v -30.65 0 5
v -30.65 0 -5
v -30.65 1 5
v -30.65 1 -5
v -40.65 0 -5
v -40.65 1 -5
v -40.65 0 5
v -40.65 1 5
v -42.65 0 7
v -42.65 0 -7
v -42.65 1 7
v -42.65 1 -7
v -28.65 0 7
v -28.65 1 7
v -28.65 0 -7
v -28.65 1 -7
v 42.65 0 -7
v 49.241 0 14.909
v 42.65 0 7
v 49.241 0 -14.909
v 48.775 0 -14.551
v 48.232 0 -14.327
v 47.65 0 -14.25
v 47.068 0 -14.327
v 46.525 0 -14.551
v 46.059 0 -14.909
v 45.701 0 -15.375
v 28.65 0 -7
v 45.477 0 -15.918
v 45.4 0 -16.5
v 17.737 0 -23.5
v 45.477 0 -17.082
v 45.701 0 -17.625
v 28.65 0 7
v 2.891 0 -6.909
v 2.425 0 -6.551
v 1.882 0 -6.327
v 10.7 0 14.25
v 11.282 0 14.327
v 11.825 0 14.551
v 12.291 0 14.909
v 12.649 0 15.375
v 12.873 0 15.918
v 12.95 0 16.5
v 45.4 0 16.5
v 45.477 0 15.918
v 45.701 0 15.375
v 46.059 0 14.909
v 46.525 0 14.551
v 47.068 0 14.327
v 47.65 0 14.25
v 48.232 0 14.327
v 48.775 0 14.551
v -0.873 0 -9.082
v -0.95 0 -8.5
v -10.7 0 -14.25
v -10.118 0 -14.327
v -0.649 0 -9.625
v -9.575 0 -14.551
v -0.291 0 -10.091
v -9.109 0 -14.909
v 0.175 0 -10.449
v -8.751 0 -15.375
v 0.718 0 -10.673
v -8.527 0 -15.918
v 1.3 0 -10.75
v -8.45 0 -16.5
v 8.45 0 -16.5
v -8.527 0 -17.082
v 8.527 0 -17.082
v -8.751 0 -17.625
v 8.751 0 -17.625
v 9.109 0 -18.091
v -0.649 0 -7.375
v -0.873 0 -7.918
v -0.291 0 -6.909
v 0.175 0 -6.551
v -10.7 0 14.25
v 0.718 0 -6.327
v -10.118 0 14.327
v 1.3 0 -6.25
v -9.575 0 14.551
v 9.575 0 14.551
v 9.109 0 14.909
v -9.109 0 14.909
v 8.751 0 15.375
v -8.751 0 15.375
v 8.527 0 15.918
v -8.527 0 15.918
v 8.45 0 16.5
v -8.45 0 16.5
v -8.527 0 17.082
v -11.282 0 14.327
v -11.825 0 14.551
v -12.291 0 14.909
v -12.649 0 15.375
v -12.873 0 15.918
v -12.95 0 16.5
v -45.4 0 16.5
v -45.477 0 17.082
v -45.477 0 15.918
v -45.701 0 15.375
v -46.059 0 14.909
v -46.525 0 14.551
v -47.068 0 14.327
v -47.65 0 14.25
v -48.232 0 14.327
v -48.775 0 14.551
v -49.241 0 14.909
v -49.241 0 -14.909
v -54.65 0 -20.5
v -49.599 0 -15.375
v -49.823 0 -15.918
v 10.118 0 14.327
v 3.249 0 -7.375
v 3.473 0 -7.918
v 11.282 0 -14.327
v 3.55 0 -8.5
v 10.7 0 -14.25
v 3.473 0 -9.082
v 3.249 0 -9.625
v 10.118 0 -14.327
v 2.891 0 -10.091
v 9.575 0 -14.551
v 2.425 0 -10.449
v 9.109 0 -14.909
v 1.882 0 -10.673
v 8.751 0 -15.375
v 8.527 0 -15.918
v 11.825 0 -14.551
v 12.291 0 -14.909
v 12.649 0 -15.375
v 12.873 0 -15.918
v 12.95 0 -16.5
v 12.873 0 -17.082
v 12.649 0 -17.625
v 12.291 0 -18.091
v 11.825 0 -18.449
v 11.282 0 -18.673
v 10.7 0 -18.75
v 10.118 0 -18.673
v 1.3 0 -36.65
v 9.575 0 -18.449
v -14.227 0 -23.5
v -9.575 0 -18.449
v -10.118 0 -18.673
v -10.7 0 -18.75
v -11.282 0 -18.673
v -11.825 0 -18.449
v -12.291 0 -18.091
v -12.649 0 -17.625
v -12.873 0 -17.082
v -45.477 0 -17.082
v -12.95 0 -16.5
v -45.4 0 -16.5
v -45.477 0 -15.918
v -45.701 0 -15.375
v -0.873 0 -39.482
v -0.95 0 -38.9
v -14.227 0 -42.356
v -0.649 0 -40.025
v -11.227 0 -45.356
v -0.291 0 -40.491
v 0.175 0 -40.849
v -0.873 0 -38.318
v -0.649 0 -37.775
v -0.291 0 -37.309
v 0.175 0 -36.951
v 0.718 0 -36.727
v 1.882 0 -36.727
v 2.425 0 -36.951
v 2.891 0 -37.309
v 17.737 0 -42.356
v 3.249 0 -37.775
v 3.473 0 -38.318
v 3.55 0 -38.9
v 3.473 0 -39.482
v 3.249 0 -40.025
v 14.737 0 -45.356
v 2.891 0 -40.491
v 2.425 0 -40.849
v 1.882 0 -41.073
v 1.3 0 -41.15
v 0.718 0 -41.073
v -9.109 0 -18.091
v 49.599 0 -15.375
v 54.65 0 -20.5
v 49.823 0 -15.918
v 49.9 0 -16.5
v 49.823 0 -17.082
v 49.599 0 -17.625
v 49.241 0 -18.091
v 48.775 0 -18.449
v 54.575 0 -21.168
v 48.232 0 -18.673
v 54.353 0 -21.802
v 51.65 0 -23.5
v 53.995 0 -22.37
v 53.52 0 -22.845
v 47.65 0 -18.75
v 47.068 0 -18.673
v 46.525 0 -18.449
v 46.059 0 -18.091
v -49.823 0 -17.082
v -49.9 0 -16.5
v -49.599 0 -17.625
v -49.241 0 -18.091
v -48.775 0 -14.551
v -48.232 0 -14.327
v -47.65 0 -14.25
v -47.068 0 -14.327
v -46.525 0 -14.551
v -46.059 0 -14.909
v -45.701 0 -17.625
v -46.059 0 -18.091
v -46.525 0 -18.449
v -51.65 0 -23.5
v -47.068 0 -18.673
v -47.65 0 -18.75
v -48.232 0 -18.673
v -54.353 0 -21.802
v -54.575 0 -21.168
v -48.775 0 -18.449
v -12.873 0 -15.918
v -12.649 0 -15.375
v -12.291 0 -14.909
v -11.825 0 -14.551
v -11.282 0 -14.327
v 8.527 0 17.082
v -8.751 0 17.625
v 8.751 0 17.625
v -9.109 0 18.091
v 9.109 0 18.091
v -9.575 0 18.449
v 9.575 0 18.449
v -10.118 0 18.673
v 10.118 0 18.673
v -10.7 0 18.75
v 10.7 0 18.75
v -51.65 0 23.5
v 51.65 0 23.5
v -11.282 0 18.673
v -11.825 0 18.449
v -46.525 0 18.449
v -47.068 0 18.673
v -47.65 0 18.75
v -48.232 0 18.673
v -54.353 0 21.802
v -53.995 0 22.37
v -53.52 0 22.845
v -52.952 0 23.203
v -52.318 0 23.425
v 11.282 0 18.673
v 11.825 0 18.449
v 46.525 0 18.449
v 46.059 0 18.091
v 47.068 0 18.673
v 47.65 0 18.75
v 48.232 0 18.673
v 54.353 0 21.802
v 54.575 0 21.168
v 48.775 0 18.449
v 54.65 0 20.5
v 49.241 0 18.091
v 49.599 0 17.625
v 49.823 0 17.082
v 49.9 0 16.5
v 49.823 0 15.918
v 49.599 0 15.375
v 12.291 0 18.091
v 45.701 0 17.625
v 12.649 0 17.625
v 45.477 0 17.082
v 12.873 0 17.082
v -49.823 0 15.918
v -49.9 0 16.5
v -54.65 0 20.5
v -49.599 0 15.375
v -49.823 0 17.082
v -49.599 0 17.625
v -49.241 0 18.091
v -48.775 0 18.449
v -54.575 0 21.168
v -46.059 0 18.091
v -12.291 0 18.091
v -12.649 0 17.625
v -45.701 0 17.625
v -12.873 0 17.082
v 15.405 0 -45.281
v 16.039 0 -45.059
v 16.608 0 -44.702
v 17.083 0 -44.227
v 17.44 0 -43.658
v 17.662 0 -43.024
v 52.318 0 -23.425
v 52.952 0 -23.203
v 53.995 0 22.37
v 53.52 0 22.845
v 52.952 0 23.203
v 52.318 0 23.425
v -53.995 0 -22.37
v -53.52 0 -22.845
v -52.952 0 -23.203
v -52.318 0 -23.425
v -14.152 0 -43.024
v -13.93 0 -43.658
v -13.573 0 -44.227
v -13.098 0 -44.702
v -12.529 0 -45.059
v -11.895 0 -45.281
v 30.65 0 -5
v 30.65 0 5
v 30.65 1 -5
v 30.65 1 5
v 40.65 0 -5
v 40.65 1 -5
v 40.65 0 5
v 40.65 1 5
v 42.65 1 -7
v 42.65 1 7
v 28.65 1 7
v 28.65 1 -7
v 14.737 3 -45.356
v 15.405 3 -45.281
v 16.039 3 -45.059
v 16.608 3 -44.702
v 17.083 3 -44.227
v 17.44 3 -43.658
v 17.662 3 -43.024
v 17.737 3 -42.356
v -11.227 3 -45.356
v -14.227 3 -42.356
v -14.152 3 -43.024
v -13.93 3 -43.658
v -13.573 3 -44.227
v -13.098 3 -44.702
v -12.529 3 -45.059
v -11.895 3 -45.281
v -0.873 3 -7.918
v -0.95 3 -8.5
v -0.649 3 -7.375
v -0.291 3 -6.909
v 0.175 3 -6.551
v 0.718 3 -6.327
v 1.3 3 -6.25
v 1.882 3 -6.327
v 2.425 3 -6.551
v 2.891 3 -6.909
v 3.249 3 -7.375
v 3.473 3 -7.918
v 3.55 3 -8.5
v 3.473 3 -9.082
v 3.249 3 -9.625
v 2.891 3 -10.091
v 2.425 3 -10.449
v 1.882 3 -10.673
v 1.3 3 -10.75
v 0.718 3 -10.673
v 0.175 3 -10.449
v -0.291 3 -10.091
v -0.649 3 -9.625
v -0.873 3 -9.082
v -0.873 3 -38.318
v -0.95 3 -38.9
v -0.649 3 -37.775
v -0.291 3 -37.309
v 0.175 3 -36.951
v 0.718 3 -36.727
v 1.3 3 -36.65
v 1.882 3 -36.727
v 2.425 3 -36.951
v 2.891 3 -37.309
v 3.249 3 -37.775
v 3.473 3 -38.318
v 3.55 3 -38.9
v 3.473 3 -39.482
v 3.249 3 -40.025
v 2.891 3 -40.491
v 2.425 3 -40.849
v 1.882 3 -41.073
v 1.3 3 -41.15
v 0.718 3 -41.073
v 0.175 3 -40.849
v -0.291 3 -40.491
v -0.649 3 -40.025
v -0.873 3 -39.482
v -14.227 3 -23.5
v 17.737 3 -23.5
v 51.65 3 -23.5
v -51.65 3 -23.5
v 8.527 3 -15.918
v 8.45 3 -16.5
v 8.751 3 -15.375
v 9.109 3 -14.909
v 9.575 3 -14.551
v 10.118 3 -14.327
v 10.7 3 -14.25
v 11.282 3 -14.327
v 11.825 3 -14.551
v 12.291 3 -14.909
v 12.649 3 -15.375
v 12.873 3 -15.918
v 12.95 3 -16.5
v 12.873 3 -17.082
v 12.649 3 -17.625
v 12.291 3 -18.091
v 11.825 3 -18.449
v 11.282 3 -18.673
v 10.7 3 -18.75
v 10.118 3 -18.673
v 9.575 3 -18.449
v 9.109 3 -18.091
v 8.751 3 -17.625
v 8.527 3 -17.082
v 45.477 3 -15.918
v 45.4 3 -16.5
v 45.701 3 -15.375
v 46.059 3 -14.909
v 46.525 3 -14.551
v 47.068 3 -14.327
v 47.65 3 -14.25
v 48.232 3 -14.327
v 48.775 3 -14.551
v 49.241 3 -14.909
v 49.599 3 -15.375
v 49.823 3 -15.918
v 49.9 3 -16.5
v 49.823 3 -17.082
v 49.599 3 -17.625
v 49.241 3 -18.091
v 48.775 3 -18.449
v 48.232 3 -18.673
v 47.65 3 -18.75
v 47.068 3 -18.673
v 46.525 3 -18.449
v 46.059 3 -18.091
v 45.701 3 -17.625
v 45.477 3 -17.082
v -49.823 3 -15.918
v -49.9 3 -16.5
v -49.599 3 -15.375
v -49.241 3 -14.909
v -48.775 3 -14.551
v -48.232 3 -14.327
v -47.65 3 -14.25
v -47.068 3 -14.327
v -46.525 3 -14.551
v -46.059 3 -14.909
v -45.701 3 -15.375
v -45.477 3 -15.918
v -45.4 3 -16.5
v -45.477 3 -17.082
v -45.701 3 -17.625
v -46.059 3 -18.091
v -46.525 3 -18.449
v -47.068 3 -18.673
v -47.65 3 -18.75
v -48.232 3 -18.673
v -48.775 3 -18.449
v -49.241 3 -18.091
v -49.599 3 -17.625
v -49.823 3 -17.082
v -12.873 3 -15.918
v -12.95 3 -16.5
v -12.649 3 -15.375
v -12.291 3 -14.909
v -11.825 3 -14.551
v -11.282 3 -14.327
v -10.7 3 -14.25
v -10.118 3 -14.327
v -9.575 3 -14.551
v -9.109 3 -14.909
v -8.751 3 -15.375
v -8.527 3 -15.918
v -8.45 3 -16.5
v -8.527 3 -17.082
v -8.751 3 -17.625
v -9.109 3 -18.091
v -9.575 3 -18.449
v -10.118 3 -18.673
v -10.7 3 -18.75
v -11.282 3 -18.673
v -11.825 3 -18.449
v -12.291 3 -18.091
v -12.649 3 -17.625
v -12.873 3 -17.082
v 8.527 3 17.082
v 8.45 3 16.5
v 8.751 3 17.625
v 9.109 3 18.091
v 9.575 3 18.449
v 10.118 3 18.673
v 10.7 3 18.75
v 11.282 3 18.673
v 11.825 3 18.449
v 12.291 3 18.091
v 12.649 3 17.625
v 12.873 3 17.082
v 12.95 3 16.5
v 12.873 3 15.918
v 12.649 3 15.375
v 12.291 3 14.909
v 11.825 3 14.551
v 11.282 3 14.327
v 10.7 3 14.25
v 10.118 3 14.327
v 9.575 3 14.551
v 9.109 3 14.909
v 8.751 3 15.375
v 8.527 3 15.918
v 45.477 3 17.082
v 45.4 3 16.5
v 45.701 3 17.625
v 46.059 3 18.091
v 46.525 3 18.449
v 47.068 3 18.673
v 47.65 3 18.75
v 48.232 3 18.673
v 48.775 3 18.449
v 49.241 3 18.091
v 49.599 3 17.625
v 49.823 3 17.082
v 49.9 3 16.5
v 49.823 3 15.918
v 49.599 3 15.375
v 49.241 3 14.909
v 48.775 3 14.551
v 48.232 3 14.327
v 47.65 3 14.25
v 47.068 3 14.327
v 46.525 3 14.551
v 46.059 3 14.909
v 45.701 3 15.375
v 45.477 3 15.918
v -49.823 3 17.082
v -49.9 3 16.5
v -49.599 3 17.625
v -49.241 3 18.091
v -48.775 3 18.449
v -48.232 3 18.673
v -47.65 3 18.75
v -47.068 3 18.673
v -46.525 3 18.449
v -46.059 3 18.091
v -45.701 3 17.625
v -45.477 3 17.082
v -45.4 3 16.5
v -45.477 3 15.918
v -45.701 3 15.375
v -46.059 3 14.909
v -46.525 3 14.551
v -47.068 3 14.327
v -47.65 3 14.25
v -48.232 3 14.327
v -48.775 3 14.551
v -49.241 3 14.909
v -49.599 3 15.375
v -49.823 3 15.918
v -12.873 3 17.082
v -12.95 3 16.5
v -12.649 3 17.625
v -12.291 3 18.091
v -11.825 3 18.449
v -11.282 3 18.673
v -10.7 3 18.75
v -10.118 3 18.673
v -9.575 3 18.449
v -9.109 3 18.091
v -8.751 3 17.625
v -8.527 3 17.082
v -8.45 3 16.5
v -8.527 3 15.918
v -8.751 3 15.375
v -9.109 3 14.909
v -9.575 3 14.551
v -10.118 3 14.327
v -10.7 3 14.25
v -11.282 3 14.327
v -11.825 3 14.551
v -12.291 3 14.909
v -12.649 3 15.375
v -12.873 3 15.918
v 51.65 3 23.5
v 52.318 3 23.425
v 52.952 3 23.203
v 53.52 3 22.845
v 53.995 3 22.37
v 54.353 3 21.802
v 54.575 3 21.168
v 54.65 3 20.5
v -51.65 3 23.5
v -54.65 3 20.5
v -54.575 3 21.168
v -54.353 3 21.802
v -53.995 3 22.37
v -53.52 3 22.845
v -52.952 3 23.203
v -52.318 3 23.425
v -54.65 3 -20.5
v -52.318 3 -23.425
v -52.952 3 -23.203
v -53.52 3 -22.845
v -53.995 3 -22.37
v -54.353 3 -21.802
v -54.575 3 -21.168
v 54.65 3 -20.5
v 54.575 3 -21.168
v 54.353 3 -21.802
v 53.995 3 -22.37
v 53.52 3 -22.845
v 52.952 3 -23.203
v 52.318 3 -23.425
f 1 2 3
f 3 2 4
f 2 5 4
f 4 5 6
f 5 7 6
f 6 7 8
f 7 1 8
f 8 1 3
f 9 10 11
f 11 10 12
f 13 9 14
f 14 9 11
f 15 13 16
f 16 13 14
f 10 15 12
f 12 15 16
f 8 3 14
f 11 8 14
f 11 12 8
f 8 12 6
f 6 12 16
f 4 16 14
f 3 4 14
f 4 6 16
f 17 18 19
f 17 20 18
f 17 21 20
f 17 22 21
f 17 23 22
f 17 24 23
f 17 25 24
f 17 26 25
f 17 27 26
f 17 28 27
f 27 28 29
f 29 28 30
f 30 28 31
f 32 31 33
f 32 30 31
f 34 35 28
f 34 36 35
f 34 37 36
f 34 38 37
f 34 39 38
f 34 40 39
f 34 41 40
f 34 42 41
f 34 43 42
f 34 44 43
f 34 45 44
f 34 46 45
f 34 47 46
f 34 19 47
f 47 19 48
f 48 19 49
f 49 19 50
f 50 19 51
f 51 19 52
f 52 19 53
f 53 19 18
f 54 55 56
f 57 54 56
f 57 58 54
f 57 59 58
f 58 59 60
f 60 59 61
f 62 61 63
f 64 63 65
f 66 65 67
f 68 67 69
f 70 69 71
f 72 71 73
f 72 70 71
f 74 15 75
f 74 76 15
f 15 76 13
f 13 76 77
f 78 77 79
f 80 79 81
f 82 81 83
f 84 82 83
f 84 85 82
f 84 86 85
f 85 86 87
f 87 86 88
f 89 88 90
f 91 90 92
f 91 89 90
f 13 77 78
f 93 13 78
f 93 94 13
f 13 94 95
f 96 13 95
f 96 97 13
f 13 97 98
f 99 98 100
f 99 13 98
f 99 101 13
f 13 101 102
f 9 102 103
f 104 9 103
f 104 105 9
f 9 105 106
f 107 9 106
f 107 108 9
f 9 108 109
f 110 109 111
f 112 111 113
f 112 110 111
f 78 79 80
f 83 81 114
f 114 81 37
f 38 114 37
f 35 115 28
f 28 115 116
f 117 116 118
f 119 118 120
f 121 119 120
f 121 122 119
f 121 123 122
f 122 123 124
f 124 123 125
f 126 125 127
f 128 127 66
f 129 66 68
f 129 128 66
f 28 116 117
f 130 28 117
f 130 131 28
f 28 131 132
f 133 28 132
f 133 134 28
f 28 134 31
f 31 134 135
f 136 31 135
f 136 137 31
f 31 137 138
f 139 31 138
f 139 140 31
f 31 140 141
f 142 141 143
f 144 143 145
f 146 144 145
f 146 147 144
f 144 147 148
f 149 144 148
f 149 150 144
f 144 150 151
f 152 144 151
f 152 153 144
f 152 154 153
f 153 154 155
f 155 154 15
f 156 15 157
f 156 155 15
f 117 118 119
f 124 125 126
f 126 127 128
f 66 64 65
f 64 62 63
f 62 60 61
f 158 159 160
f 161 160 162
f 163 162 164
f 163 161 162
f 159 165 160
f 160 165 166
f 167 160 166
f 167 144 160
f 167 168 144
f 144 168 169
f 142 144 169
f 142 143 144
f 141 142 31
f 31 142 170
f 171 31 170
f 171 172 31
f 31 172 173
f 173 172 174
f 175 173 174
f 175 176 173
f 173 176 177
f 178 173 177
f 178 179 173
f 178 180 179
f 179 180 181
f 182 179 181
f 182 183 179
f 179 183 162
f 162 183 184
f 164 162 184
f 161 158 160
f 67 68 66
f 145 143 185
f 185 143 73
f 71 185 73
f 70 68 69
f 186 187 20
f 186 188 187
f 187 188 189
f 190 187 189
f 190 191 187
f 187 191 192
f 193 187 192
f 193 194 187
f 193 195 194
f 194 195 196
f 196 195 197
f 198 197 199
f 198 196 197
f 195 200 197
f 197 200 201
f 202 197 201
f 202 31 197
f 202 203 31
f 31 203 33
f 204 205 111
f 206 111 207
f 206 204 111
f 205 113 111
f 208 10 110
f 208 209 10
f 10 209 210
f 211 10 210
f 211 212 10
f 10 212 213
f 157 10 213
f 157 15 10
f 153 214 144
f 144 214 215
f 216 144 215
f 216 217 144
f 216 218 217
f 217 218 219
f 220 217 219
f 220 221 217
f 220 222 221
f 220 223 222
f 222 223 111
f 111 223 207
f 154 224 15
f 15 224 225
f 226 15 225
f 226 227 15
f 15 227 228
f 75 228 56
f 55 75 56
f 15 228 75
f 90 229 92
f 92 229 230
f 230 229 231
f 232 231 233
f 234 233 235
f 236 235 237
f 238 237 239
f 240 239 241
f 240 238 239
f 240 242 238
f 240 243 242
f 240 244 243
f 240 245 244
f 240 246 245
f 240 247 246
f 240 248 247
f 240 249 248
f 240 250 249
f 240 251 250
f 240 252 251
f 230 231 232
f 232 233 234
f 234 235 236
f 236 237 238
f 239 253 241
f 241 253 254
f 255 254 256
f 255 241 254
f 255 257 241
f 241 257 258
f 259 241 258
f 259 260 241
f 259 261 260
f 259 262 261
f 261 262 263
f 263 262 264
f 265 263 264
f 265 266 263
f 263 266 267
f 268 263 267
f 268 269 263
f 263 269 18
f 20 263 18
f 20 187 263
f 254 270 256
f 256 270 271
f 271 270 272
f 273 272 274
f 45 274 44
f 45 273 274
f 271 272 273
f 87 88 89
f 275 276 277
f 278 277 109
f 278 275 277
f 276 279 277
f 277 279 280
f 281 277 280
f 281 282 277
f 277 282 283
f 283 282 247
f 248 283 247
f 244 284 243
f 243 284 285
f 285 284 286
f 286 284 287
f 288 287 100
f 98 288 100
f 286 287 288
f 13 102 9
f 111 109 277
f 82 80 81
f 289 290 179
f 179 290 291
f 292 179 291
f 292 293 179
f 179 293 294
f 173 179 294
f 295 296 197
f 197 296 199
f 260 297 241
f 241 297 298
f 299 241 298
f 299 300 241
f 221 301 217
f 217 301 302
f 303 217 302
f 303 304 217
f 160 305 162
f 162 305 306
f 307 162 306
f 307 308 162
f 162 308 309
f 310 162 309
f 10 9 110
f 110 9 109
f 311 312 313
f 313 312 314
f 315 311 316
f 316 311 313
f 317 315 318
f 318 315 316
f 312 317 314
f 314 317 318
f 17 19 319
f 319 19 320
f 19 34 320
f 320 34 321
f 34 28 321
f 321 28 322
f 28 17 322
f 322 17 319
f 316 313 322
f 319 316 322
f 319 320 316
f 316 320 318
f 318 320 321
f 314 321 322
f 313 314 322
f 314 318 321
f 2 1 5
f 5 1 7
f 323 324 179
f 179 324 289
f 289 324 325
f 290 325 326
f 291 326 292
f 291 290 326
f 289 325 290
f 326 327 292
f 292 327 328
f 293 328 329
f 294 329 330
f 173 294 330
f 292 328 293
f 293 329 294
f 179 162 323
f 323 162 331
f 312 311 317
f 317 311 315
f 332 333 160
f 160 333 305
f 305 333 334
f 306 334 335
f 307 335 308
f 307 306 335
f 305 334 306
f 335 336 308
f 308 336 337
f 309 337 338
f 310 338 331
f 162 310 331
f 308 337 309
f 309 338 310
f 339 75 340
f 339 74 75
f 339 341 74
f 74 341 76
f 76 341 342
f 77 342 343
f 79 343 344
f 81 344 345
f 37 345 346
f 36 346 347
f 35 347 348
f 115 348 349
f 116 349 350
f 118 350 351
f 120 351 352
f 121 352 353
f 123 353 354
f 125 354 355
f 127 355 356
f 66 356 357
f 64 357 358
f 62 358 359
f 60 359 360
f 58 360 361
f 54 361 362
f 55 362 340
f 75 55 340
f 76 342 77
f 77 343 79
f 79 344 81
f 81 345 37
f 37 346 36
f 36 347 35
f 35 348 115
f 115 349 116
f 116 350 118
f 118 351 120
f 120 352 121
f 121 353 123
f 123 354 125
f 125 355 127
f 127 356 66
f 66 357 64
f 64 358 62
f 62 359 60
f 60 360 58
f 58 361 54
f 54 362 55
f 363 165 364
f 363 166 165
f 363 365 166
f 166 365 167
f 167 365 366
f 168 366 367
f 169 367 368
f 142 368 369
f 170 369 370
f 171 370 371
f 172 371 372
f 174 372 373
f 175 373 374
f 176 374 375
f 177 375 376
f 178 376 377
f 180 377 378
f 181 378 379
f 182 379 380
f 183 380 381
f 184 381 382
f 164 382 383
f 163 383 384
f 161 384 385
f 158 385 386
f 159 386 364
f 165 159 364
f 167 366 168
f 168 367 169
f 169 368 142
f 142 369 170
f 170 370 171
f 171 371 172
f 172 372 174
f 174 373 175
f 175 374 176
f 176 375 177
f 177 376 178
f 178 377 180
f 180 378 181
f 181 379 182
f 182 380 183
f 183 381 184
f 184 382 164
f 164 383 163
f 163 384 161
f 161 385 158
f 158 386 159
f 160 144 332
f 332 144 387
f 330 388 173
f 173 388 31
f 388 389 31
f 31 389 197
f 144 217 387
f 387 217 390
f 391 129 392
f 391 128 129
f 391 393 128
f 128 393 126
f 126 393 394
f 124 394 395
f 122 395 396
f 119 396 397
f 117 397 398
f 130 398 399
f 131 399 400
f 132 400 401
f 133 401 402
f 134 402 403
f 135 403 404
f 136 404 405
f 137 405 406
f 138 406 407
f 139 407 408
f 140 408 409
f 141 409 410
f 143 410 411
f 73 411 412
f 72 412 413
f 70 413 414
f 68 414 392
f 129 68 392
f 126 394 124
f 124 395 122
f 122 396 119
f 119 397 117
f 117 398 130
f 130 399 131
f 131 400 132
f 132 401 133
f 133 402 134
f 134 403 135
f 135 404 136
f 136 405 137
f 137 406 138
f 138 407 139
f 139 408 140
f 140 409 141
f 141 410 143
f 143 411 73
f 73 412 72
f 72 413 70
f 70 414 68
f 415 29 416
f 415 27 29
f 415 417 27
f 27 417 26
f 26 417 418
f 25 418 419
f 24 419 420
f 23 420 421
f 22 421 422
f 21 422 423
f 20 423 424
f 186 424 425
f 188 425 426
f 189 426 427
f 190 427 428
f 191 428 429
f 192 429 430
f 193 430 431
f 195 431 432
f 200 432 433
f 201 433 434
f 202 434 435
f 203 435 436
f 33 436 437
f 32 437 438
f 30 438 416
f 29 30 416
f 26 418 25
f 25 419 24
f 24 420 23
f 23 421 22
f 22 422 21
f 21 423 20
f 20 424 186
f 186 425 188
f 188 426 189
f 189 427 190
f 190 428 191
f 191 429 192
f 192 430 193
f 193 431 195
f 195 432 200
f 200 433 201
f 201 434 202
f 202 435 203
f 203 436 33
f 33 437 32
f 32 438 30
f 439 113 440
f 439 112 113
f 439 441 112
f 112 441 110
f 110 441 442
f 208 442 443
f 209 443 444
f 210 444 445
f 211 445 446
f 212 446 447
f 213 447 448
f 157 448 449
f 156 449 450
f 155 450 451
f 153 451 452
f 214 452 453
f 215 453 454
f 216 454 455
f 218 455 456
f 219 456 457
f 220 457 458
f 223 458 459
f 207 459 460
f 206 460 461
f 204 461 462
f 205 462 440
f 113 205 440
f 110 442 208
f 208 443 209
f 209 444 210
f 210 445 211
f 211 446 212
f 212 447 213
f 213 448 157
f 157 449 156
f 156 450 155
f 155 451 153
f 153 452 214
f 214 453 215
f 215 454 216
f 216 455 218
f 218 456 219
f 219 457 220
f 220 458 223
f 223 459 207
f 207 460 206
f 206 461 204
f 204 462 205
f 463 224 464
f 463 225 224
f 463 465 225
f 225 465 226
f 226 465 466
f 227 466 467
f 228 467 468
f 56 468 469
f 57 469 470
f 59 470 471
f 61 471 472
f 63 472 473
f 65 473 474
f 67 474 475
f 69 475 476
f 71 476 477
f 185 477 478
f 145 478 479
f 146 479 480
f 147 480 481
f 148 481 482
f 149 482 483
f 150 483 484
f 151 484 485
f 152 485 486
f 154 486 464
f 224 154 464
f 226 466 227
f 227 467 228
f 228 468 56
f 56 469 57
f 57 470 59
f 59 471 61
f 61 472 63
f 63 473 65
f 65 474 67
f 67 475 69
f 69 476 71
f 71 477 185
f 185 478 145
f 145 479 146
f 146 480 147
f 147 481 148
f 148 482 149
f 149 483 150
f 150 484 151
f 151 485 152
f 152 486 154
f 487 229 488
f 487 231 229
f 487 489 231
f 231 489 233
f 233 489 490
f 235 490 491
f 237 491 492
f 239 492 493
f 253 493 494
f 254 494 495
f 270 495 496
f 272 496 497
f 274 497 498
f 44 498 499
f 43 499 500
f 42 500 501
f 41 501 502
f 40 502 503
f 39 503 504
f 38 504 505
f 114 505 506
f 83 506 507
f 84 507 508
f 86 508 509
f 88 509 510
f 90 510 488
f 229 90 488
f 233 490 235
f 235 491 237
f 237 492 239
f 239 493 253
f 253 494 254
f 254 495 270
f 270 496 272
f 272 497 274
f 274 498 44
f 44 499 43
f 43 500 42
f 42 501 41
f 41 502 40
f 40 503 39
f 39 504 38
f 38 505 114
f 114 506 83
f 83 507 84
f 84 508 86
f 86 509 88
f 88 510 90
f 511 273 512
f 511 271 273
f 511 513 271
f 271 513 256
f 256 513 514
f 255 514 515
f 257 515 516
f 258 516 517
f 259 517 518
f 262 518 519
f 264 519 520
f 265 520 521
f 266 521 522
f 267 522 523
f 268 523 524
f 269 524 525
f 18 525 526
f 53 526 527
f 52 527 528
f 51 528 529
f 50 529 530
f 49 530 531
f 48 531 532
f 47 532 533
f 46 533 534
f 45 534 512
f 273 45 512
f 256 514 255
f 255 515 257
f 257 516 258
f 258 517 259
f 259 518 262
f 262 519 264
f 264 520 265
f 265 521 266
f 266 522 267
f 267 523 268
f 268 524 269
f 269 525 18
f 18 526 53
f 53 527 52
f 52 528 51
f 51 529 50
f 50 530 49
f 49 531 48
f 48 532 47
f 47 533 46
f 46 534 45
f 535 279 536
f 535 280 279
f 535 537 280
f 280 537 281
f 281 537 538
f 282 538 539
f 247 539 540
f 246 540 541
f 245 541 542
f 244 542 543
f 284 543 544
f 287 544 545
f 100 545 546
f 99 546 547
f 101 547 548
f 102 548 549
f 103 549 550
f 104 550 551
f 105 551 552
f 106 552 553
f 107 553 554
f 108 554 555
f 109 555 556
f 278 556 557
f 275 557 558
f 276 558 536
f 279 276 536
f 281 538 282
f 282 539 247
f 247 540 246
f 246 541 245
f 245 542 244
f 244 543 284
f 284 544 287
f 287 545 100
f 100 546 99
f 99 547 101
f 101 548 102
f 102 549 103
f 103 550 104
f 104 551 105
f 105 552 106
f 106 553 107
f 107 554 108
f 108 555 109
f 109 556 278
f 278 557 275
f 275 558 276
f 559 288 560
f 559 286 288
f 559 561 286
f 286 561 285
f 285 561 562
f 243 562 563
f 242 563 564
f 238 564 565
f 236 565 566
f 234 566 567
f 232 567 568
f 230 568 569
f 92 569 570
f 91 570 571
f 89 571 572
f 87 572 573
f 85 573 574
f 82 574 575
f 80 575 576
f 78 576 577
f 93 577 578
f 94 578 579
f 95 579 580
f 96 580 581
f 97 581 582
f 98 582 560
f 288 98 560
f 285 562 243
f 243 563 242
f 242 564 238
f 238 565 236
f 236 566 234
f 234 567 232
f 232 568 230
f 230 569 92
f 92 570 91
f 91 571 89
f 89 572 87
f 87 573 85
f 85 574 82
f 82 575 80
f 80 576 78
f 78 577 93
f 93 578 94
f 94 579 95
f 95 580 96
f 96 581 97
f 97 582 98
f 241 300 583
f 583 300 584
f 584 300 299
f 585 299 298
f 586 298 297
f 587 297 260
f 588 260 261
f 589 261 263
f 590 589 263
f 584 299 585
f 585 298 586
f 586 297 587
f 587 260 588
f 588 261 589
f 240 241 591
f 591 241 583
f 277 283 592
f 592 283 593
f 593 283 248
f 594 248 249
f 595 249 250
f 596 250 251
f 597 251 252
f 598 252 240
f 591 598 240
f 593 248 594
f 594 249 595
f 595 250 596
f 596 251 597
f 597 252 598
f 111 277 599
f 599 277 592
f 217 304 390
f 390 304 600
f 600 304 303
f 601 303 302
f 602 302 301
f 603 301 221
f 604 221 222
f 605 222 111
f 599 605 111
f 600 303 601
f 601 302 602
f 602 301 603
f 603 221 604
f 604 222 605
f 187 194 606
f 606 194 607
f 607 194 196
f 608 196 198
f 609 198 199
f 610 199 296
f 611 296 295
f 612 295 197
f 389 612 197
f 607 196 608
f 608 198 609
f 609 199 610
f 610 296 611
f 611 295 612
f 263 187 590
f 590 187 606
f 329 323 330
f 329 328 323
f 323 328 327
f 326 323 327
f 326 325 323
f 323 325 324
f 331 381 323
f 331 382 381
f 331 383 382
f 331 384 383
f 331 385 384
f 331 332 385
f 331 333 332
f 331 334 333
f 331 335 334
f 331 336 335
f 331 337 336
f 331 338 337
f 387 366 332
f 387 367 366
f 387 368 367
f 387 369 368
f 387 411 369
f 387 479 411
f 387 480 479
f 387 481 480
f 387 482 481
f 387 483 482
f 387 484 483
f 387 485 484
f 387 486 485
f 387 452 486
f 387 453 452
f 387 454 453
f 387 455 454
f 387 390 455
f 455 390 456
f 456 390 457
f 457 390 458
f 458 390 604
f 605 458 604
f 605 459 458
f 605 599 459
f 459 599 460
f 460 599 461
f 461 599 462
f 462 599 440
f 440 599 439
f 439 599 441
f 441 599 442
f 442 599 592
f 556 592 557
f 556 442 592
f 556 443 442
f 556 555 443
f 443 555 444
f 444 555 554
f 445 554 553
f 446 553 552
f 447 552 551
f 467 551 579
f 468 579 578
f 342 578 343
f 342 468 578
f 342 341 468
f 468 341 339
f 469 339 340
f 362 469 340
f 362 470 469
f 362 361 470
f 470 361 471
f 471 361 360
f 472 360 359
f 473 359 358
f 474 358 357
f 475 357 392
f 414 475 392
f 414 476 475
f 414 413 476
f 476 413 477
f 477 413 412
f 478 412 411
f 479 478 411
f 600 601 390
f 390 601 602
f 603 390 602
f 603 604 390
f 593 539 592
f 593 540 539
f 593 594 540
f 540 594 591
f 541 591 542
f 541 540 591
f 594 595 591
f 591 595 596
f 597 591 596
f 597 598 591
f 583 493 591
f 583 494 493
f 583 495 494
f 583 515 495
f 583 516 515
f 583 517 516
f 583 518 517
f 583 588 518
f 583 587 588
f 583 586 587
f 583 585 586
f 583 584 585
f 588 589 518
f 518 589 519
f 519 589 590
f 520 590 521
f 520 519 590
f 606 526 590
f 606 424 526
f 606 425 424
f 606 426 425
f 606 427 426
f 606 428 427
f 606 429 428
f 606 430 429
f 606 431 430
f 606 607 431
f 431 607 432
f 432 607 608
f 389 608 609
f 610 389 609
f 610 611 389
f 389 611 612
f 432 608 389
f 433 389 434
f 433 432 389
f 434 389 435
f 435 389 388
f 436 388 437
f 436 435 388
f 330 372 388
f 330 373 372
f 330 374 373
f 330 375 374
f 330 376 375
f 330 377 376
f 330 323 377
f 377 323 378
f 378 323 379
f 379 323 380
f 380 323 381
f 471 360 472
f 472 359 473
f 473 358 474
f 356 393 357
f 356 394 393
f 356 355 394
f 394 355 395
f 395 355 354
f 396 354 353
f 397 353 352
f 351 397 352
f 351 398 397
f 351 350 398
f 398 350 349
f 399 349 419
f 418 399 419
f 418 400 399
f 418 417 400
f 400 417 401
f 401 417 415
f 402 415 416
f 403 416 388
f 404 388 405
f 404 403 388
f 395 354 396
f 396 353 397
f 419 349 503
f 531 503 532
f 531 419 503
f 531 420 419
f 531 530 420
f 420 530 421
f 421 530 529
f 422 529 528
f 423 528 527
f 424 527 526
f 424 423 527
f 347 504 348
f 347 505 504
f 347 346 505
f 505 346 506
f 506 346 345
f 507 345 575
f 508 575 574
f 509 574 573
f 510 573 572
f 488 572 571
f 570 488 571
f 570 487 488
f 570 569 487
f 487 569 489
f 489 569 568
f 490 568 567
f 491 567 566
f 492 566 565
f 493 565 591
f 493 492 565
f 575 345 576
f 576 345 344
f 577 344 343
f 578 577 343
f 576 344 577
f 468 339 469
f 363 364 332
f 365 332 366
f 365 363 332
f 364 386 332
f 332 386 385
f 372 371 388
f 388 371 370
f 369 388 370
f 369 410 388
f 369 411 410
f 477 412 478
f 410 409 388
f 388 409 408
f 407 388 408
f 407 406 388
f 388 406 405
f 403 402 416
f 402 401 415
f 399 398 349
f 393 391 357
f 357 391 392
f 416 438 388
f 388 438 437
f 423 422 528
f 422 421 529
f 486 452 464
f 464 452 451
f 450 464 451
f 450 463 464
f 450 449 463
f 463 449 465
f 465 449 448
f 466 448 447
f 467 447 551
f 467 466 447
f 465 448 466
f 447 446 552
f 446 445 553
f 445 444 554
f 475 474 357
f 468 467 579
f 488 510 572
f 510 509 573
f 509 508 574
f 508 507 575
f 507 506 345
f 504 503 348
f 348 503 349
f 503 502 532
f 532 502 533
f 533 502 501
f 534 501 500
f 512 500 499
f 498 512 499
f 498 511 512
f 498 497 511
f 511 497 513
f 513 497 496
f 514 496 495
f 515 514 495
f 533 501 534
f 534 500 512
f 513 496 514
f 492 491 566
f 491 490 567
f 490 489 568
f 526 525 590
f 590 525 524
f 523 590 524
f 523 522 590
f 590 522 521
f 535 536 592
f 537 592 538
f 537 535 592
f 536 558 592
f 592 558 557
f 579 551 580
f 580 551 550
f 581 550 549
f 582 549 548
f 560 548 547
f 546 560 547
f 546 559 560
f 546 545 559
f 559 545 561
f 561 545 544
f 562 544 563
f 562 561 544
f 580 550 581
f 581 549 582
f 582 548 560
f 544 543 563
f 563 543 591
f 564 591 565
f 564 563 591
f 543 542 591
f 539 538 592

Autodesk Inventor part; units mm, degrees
ref_plane "YZ Plane" through (0, 0, 0) normal (1, 0, 0) x (0, 1, 0)
ref_plane "XZ Plane" through (0, 0, 0) normal (0, 1, 0) x (-1, 0, 0)
ref_plane "XY Plane" through (0, 0, 0) normal (0, 0, 1) x (1, 0, 0)
sketch "Sketch1" plane through (0, 0, 0) normal (0, 1, 0) x (-1, 0, 0)
  line L0 (-51.65, 23.5) -> (51.65, 23.5)
  line L1 (54.65, 20.5) -> (54.65, -20.5)
  line L2 (51.65, -23.5) -> (-51.65, -23.5)
  line L3 (-54.65, -20.5) -> (-54.65, 20.5)
  circle A0 centre (-47.65, 16.5) radius 2.25
  circle A1 centre (47.65, 16.5) radius 2.25
  circle A2 centre (-47.65, 16.5) radius 26.75 construction
  circle A3 centre (-10.7, 16.5) radius 2.25
  circle A4 centre (-10.7, 16.5) radius 11.2 construction
  line L4 (-21.9, 16.5) -> (-21.9, 6.8604)
  line L5 (-20.9, 16.5) -> (-20.9, 6.8604)
  circle A5 centre (10.7, 16.5) radius 2.25
  circle A6 centre (10.7, 16.5) radius 11.2 construction
  line L6 (-0.5, 16.5) -> (-0.5, 5.694)
  line L7 (0.5, 16.5) -> (0.5, 5.694)
  circle A7 centre (47.65, 16.5) radius 26.75 construction
  line L8 (20.9, 16.5) -> (20.9, 5.8426)
  line L9 (21.9, 16.5) -> (21.9, 5.8426)
  arc A8 (-51.65, 23.5) -> (-54.65, 20.5) centre (-51.65, 20.5) ccw
  arc A9 (-54.65, -20.5) -> (-51.65, -23.5) centre (-51.65, -20.5) ccw
  arc A10 (54.65, 20.5) -> (51.65, 23.5) centre (51.65, 20.5) ccw
  arc A11 (51.65, -23.5) -> (54.65, -20.5) centre (51.65, -20.5) ccw
  line L10 (-84.9483, 16.5) -> (77.5332, 16.5) construction
  line L11 (-54.65, 0) -> (54.65, 0)
  line L12 (10.7, 30.5) -> (10.7, -33.5) construction
  circle A12 centre (10.7, -16.5) radius 2.25
  line L13 (5, -8.5) -> (18, -8.5) construction
  line L14 (3.7, -4.5) -> (3.7, -33.5) construction
  line L15 (-6.3, -4.5) -> (-6.3, -33.5) construction
  line L16 (-1.3, -33.5) -> (-1.3, -4.5) construction
  circle A13 centre (-1.3, -38.9) radius 2.25
  circle A14 centre (-1.3, -8.5) radius 2.25
  line L17 (-17.7373, -23.5) -> (14.2274, -23.5)
  line L18 (14.2274, -23.5) -> (14.2274, -45.3565)
  line L19 (14.2274, -45.3565) -> (-17.7373, -45.3565)
  line L20 (-17.7373, -45.3565) -> (-17.7373, -23.5)
  line L21 (-40.65, 5) -> (-30.65, 5)
  line L22 (-30.65, 5) -> (-30.65, -5)
  line L23 (-30.65, -5) -> (-40.65, -5)
  line L24 (-40.65, -5) -> (-40.65, 5)
  line L25 (-42.65, -7) -> (-28.65, -7)
  line L26 (-28.65, -7) -> (-28.65, 7)
  line L27 (-28.65, 7) -> (-42.65, 7)
  line L28 (-42.65, 7) -> (-42.65, -7)
  point P0 (0, 0)
  point P1 (-54.65, 23.5)
  point P2 (-54.65, -23.5)
  point P3 (0, 23.5)
  point P4 (-35.65, 5)
  point P5 (-30.65, 0)
  dimension "d5" = 53.5
  dimension "d12" = 53.5
  dimension "d1" = 4.5
  dimension "d2" = 7
  dimension "d3" = 4.5
  dimension "d4" = 7
  dimension "d6" = 4.5
  dimension "d7" = 22.4
  dimension "d8" = 1
  dimension "d9" = 4.5
  dimension "d10" = 22.4
  dimension "d11" = 1
  dimension "d13" = 1
  dimension "d14" = 3
  dimension "d23" = 16.5
  dimension "d24" = 7
  dimension "d27" = 8
  dimension "d28" = 7
  dimension "d29" = 10
  dimension "d30" = 5
  dimension "d31" = 4.5
  dimension "d32" = 4.5
  dimension "d33" = 30.4
  dimension "d38" = 0
  dimension "d40" = 10
  dimension "d41" = 10
  dimension "d43" = 2
  dimension "d47" = 12
extrude "Extrusion1" add sketch "Sketch1" along normal blind 3 contours L0 A10 L1 L11 L26 L27 L28 L3 A8 | L11 L28 L25 L26 L1 A11 L2 A9 L3 | L28 L27 L26 L11 L22 L21 L24 | L11 L24 L23 L22 L26 L25 L28 | L24 L21 L22 L11 | L11 L22 L23 L24 | A0 | A1 | A3 | A5 | A12 | A14
extrude "Extrusion2" cut sketch "Sketch1" along normal blind 10 contours A0 | A1 | A3 | A5
mirror "Mirror1" about plane through (0, 0, 0) normal (0, 0, 1) of "Extrusion2"
extrude "Extrusion3" add sketch "Sketch1" along normal blind 3 contours L2 L18 L19 L20
extrude "Extrusion4" cut sketch "Sketch1" along normal blind 3 contours A14
fillet "Fillet1" radius 3 2 edges at (-14.2274, 1.5, -45.3565) (17.7373, 1.5, -45.3565)
extrude "Extrusion5" cut sketch "Sketch1" along normal blind 1 contours L28 L27 L26 L11 L22 L21 L24 | L11 L24 L23 L22 L26 L25 L28
mirror "Mirror2" about plane through (0, 0, 0) normal (1, 0, 0) of "Extrusion5"
properties part number "OuterBar"
